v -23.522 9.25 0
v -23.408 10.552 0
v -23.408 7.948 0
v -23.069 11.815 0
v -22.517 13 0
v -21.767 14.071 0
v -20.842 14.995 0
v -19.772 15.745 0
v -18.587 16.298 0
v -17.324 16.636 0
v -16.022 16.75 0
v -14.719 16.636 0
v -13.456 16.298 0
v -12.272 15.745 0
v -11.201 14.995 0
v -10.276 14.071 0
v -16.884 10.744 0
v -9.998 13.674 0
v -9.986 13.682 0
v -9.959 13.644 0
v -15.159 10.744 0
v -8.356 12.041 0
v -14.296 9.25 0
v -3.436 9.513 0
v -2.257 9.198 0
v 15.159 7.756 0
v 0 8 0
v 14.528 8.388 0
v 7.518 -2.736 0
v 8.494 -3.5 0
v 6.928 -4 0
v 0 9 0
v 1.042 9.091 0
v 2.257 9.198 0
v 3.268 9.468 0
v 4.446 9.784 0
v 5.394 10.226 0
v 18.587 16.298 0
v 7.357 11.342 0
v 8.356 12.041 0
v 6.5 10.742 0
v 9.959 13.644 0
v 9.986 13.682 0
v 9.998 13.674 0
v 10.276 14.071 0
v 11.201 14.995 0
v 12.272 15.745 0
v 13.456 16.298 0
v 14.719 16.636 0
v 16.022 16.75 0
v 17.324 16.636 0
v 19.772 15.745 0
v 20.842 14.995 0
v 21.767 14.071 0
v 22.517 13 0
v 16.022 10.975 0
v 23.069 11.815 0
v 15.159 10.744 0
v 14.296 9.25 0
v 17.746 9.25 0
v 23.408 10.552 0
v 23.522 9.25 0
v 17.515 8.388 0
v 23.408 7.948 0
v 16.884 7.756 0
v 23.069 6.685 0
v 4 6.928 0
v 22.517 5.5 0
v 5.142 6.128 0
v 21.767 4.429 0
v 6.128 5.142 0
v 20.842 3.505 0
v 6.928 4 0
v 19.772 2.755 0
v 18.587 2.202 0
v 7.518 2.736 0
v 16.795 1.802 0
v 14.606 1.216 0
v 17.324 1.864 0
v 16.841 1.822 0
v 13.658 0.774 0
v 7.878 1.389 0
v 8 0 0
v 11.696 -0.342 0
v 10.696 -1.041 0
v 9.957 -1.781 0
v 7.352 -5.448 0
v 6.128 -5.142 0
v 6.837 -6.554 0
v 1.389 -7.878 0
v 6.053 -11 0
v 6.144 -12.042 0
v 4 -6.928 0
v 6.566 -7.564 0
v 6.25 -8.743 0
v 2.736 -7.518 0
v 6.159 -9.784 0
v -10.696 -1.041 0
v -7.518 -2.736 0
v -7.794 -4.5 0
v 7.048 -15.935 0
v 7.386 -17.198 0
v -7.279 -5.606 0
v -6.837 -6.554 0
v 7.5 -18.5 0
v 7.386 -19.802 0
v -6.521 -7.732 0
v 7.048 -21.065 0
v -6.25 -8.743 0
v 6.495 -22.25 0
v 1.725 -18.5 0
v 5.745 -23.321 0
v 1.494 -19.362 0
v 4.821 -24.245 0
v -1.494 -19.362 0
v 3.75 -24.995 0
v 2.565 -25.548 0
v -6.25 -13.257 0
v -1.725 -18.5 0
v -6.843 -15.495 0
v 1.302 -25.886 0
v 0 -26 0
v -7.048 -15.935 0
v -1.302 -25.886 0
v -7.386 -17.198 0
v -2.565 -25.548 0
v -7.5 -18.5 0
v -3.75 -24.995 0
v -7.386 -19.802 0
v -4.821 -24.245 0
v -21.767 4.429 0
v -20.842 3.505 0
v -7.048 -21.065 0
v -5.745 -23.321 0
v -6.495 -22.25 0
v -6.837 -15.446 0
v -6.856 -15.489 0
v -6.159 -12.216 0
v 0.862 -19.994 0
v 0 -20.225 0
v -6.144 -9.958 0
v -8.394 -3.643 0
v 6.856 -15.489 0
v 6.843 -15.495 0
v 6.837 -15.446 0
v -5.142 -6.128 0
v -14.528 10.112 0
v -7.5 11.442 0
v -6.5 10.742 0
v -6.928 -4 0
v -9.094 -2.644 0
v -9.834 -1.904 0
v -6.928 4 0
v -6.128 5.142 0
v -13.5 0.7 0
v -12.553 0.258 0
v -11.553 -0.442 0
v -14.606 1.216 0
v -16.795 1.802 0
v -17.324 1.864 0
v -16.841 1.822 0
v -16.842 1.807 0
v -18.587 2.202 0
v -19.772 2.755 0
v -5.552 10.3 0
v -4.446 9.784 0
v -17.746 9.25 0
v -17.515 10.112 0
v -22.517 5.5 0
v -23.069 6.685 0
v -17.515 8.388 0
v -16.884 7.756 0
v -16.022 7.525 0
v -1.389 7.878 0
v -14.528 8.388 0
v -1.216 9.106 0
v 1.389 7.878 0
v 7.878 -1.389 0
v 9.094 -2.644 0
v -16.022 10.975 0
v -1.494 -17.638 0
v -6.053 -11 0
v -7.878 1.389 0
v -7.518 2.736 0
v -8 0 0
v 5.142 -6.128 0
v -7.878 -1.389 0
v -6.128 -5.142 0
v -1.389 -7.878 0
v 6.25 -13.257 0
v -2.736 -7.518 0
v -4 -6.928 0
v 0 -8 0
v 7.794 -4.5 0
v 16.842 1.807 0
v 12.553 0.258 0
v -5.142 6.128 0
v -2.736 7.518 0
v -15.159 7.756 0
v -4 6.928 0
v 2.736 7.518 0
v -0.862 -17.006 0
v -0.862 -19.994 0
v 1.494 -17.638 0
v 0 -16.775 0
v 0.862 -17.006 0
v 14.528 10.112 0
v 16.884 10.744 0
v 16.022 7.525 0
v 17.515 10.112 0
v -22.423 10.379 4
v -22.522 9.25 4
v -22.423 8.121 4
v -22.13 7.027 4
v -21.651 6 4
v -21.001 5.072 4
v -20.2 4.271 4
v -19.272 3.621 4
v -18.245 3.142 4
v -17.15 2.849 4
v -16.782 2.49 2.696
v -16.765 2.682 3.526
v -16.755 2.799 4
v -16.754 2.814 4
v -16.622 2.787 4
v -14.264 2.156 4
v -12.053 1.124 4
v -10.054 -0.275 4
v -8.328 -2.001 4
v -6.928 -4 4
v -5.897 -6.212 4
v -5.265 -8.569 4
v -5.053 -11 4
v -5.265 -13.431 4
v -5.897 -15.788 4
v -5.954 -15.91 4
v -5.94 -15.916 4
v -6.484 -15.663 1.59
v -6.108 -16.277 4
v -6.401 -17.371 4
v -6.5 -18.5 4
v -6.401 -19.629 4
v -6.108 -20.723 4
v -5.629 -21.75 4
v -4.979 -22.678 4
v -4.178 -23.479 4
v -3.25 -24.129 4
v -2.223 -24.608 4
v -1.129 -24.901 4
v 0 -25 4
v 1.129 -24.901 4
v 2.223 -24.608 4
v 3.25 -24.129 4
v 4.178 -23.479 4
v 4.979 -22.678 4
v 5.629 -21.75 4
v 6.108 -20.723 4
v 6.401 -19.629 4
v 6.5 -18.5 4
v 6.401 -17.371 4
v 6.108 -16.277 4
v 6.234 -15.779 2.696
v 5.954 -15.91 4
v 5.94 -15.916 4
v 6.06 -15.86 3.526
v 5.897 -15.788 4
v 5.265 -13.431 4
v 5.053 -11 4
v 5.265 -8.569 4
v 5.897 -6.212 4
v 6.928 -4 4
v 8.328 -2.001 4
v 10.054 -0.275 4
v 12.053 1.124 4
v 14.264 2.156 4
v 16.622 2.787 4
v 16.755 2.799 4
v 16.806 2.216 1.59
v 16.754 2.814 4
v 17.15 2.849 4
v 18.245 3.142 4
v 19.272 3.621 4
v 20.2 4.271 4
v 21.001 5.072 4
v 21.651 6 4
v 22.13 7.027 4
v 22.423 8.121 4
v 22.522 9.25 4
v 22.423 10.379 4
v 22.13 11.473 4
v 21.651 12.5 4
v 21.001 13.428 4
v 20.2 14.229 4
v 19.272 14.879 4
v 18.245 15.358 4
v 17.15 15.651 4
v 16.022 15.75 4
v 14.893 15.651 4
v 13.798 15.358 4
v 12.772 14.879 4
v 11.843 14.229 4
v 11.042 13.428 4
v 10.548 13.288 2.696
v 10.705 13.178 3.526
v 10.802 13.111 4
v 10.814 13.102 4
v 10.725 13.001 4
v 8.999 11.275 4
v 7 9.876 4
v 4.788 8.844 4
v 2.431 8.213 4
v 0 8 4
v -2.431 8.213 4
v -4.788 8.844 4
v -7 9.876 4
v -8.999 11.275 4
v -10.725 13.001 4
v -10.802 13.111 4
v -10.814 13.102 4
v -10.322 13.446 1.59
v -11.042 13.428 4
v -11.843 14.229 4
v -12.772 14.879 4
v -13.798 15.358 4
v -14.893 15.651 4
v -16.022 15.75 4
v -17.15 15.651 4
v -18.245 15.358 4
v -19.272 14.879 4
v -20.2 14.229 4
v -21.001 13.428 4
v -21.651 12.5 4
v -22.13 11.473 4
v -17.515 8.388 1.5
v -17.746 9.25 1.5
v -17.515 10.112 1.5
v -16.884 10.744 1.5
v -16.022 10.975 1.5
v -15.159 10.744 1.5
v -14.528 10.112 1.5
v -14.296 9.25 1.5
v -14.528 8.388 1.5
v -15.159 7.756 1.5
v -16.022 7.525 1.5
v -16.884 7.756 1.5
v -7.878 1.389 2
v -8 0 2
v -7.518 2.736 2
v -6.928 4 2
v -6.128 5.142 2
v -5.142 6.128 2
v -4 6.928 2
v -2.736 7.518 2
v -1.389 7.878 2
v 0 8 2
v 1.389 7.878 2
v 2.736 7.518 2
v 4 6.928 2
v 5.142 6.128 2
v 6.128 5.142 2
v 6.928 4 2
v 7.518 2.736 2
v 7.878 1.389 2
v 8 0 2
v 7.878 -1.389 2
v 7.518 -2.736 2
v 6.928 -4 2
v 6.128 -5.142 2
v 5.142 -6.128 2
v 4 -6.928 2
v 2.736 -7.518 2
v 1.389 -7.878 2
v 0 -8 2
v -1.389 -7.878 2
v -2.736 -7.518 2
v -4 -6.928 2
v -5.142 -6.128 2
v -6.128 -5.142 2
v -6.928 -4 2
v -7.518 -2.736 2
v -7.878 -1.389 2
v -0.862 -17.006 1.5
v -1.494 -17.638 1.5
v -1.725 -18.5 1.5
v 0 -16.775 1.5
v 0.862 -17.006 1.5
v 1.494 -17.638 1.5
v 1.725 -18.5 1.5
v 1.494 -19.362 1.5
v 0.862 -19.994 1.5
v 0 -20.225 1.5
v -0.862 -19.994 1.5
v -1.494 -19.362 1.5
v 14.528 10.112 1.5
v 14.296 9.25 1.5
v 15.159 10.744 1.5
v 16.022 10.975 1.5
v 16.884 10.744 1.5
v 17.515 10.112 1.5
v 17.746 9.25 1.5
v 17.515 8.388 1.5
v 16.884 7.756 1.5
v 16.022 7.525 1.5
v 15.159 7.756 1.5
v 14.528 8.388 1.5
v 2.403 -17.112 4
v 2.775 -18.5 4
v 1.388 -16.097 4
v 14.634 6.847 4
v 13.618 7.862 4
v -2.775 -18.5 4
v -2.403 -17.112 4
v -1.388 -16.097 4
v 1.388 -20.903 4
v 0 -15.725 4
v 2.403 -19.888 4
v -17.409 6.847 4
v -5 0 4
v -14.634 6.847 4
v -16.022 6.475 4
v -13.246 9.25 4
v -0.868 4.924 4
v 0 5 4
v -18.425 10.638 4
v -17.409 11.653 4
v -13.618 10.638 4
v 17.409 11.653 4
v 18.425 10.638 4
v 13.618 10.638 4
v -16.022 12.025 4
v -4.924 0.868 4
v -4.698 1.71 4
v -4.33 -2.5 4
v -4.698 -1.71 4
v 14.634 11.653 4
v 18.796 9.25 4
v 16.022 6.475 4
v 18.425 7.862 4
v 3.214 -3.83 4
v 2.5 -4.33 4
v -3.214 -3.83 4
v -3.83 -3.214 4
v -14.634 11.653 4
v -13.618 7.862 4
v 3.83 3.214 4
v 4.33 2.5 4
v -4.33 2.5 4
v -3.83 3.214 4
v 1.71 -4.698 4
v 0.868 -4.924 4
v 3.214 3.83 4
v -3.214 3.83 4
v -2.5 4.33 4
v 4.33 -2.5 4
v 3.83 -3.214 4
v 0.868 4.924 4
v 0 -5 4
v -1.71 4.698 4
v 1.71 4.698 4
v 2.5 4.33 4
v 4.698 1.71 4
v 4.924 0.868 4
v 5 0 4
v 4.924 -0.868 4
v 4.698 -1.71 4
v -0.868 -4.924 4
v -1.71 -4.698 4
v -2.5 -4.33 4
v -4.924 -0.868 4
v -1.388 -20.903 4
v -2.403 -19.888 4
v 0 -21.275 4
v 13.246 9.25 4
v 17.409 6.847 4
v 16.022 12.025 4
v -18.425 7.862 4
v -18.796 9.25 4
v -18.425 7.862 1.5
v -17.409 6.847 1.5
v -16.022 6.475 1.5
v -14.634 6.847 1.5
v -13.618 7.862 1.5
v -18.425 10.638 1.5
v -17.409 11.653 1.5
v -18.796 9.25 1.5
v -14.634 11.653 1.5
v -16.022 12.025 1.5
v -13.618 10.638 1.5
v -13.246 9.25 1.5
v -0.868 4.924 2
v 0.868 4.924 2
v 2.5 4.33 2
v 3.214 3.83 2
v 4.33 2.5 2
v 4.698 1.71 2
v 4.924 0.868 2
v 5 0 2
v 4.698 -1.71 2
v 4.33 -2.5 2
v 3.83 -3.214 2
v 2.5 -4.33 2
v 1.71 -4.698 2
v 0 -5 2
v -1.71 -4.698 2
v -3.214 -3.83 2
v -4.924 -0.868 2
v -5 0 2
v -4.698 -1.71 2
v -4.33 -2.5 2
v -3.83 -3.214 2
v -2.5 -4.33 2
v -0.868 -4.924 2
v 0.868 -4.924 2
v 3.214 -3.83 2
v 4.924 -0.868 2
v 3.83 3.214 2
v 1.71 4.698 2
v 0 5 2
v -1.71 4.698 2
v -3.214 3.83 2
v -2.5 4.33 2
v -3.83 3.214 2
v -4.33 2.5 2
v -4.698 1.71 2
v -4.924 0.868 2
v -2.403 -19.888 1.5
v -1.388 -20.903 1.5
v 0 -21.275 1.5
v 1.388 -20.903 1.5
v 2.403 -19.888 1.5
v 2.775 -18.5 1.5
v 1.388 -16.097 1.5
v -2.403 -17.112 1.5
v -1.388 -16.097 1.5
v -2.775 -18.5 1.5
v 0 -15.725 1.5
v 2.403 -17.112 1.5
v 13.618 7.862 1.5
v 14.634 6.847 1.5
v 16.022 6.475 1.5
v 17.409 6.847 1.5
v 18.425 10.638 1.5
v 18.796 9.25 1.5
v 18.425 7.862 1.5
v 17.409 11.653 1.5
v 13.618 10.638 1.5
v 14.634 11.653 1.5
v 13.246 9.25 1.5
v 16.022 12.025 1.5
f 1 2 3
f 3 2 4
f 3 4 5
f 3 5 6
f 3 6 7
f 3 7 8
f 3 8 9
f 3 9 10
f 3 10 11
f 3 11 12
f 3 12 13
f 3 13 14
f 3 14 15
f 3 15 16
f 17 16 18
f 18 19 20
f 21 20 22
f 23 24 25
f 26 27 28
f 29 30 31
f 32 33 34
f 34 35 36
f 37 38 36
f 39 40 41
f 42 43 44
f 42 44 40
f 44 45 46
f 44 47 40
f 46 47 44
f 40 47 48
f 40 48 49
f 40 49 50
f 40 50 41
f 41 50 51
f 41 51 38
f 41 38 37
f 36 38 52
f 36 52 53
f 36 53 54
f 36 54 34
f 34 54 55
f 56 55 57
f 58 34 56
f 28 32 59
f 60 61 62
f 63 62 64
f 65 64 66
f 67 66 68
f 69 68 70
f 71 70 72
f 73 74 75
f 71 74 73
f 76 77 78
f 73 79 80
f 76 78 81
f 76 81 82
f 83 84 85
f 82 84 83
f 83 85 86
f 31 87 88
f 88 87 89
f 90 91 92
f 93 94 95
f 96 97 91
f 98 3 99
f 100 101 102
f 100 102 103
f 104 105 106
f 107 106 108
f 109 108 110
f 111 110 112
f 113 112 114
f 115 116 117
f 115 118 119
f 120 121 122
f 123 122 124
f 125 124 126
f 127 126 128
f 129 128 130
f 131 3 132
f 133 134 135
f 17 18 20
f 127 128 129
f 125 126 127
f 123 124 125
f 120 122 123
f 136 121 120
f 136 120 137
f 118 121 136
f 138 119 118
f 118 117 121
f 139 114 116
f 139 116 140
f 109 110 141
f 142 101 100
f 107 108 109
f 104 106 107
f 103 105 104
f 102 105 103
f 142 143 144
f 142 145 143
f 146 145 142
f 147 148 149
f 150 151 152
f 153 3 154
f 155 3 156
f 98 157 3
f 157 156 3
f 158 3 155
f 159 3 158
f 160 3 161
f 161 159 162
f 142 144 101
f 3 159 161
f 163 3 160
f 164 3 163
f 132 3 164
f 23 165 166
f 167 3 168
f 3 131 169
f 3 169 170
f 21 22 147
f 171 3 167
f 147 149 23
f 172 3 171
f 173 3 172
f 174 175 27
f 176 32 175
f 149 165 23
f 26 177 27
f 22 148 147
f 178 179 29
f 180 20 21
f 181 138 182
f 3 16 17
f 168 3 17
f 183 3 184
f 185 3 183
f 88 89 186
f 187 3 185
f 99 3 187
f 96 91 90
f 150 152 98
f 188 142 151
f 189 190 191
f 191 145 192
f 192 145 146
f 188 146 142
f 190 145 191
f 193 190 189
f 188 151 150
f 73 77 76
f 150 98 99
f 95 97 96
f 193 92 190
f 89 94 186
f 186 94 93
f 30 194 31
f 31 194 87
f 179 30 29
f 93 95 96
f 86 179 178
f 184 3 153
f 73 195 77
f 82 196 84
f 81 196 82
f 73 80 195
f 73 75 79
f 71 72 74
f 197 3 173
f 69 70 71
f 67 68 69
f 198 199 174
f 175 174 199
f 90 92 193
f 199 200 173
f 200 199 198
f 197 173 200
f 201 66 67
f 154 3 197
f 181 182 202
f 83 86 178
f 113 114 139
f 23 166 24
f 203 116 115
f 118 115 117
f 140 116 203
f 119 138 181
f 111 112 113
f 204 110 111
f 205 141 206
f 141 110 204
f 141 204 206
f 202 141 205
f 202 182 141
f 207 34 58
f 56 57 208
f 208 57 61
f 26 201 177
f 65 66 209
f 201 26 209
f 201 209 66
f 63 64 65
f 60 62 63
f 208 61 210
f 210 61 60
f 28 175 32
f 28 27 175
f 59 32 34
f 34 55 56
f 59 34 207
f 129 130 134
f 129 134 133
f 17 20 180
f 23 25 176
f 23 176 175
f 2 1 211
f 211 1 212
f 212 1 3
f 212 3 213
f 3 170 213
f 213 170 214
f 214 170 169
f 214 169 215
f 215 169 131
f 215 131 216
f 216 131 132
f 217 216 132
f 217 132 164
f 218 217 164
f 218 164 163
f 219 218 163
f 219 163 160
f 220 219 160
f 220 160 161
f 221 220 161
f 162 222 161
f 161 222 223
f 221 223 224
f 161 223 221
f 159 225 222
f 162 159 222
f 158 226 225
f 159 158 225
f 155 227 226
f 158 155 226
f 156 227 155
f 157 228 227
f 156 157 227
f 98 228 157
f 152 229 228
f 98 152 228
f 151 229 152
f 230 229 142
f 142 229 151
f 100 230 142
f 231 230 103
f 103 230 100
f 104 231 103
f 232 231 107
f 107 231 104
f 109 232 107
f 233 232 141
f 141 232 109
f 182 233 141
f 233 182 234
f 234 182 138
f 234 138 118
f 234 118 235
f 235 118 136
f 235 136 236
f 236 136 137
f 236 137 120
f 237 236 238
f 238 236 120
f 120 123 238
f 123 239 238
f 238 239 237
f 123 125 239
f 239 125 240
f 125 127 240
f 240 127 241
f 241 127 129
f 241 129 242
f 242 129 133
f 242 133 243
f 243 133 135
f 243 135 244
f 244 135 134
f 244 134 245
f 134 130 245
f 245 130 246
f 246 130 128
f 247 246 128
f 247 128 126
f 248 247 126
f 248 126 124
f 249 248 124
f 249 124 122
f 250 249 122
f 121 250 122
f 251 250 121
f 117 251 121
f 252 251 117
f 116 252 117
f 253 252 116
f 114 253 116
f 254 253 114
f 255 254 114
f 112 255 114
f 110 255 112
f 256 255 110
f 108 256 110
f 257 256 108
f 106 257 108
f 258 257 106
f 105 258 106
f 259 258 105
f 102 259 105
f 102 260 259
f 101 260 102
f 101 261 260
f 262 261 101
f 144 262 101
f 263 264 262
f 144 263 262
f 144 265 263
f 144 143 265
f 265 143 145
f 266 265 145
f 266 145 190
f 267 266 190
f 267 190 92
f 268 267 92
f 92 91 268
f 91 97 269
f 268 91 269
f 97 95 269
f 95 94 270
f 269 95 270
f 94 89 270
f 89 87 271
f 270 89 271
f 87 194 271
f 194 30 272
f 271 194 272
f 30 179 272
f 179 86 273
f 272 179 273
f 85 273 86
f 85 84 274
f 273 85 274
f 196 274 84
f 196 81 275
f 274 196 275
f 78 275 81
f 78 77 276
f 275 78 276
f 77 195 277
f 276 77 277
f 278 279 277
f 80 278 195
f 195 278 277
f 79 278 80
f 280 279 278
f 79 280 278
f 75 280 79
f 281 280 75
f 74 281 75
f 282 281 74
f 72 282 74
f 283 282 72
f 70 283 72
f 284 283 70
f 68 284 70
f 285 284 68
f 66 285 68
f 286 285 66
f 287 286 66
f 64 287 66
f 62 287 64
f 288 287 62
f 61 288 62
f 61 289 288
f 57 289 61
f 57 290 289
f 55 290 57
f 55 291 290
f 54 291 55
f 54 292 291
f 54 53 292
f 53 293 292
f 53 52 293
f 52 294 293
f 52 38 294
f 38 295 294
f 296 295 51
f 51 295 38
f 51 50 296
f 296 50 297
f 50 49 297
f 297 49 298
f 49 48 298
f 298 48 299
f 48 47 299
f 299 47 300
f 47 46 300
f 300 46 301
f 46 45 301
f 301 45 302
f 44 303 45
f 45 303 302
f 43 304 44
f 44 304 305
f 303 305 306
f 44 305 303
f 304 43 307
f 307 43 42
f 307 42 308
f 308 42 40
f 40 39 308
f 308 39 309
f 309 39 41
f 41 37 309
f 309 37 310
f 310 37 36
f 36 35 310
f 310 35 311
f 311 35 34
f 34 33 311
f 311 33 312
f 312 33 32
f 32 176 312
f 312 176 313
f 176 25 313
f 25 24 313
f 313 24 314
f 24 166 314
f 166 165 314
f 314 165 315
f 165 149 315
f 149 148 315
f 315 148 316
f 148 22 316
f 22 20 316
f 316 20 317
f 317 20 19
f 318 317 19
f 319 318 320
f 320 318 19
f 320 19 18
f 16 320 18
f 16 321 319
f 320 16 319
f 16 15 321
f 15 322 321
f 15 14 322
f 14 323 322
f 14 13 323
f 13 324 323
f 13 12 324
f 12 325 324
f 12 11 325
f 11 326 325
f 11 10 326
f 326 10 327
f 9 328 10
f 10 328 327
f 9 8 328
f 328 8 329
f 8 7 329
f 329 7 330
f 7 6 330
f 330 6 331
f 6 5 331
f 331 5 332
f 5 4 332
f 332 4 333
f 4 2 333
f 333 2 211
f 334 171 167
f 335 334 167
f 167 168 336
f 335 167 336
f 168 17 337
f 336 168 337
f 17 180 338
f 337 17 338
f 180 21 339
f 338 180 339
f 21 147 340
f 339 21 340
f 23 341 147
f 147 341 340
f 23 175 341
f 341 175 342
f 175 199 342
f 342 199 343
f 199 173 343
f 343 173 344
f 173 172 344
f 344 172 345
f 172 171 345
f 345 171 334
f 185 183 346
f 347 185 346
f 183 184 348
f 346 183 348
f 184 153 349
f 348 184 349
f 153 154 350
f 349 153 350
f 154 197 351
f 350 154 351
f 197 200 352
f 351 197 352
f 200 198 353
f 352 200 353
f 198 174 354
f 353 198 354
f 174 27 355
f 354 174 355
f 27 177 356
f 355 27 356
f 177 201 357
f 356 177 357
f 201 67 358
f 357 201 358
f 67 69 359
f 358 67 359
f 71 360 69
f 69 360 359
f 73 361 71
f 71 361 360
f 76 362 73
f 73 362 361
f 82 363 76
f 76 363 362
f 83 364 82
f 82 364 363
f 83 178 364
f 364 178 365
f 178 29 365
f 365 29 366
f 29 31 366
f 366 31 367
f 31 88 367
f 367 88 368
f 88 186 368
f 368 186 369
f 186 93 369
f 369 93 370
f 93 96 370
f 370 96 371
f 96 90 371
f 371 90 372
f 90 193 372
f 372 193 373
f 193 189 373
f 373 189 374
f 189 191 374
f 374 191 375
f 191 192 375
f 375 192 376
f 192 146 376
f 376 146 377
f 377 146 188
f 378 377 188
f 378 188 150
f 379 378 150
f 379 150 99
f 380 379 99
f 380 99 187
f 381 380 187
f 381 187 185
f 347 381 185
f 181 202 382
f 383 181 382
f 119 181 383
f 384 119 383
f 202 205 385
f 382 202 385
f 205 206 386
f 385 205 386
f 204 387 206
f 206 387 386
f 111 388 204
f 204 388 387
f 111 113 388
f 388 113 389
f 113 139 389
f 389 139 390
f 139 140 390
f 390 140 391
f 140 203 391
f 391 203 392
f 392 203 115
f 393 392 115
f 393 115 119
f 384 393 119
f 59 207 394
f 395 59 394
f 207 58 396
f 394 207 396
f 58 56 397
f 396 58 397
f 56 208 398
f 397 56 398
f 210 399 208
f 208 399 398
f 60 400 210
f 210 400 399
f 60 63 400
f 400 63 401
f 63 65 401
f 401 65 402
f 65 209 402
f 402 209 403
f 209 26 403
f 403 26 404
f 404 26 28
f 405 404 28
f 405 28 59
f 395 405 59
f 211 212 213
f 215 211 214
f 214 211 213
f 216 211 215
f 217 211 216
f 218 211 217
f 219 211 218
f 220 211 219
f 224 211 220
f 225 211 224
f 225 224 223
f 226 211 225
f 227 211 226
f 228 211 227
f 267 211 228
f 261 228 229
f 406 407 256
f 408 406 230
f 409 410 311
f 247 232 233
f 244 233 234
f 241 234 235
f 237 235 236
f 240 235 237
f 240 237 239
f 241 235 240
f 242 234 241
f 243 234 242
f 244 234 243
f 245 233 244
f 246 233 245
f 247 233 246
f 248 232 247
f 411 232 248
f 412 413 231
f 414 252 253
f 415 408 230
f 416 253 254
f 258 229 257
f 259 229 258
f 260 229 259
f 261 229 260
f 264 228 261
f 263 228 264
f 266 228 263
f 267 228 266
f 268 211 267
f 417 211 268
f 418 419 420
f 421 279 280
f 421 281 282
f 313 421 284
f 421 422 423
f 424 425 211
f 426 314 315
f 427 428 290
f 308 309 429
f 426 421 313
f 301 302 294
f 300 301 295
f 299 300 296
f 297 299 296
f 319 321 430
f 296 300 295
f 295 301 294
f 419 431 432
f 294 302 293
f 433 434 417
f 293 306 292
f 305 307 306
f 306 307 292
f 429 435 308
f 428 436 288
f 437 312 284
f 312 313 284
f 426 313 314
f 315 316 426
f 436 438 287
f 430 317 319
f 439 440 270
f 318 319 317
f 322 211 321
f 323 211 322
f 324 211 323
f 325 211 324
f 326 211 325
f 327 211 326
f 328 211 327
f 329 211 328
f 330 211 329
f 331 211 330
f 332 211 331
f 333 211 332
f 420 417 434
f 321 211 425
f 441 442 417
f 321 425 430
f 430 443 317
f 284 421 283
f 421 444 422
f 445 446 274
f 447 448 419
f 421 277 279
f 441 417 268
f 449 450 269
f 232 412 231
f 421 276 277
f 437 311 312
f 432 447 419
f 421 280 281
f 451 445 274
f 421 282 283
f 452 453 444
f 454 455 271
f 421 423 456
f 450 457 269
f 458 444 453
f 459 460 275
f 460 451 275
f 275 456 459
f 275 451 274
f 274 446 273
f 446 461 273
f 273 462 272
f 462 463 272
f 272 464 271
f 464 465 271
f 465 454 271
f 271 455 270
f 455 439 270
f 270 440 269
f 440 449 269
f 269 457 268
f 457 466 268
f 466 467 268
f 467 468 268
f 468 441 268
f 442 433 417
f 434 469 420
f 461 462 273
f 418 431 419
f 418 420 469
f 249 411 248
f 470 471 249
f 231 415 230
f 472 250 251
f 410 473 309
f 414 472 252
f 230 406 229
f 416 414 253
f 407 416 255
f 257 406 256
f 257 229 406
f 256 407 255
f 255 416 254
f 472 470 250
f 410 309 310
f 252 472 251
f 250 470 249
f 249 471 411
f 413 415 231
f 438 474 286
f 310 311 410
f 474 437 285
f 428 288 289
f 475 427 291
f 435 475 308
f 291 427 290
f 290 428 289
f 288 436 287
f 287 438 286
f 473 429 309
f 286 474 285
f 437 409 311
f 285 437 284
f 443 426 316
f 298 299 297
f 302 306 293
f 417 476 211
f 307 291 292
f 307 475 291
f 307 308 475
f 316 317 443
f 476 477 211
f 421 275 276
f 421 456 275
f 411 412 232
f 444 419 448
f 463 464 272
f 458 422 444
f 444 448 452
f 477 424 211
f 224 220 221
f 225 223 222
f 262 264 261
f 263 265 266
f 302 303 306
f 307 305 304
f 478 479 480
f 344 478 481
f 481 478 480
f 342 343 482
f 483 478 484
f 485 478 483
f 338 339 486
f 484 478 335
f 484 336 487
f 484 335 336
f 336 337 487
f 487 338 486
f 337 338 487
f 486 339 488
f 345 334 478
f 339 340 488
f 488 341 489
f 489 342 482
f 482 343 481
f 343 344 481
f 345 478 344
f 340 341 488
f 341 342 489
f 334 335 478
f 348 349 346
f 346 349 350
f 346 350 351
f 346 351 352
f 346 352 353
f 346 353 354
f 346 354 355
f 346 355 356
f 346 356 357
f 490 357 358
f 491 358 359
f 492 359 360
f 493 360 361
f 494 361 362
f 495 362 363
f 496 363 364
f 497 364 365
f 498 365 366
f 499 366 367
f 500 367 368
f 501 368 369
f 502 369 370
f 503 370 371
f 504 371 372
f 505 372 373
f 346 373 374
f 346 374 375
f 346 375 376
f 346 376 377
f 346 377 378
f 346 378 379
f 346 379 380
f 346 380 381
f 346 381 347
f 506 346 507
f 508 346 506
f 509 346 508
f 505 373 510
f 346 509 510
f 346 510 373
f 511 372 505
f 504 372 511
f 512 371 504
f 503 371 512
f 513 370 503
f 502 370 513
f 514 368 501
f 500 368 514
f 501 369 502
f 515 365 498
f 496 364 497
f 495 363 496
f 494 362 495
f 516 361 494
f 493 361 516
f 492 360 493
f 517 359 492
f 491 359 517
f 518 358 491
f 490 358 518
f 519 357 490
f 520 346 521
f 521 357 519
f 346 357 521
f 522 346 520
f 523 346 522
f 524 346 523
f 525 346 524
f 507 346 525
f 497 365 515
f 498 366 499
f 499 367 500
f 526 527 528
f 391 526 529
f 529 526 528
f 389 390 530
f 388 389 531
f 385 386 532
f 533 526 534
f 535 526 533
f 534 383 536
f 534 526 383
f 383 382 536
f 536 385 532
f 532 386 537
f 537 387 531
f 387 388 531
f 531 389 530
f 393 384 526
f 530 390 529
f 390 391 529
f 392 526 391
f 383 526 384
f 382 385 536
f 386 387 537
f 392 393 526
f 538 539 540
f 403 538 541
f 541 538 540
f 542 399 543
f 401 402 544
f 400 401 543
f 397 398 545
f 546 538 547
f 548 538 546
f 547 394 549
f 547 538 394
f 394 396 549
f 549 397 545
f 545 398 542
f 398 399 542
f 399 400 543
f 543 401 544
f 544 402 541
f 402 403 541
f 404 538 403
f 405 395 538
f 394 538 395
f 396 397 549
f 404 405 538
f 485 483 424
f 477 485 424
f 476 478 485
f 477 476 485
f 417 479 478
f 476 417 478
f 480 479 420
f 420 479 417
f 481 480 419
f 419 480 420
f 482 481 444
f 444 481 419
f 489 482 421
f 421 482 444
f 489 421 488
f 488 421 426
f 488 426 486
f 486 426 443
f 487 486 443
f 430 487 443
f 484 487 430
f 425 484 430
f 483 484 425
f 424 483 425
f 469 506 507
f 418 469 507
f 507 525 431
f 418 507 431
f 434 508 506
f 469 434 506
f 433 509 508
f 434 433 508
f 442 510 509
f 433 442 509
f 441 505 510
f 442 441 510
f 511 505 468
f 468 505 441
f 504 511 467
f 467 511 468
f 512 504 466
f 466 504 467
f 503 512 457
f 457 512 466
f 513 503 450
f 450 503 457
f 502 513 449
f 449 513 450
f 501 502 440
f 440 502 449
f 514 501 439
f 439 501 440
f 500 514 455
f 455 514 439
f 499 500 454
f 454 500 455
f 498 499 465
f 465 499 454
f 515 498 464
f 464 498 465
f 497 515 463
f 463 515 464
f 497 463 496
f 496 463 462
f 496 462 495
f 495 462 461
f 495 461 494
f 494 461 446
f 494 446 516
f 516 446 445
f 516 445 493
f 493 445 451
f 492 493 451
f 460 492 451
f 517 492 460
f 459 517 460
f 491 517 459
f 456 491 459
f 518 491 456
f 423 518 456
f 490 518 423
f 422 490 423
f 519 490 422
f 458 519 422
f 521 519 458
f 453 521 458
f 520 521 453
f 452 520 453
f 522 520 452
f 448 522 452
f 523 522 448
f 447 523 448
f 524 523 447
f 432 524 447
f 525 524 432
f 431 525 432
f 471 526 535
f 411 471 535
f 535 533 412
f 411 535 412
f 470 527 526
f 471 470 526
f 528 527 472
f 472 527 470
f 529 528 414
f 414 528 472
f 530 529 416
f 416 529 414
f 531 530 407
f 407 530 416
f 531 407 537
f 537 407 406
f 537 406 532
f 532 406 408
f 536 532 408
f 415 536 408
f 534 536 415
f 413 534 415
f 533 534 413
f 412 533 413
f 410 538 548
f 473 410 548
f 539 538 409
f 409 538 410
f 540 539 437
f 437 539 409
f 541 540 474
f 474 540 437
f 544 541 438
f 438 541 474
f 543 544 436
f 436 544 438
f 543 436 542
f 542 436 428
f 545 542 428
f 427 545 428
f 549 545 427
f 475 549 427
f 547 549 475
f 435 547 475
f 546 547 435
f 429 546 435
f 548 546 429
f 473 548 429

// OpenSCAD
// file: configuration.scad
// Increase this if your slicer or printer make holes too tight.
extra_radius = 0.1;

// OD = outside diameter, corner to corner.
m3_nut_od = 6.1;
m3_nut_radius = m3_nut_od/2 + 0.2 + extra_radius;

// Major diameter of metric 3mm thread.
m3_major = 2.85;
m3_radius = m3_major/2 + extra_radius;
m3_wide_radius = m3_major/2 + extra_radius + 0.2;

// OD = outside diameter, corner to corner.
m5_nut_od = 8.1;
m5_nut_radius = m5_nut_od/2 + 0.2 + extra_radius;

// Major diameter of metric 5mm thread.
m5_major = 4.85;
m5_radius = m5_major/2 + extra_radius;
m5_wide_radius = m5_major/2 + extra_radius + 0.2;

// NEMA17 stepper motors.
motor_shaft_diameter = 5;
motor_shaft_radius = motor_shaft_diameter/2 + extra_radius;

// Frame brackets. M3x8mm screws work best with 3.6 mm brackets.
thickness = 3.6;

// OpenBeam or Misumi. Currently only 15x15 mm, but there is a plan
// to make models more parametric and allow 20x20 mm in the future.
extrusion = 15;
// main file
include <configuration.scad>;

separation = 44;  // Distance between ball joint mounting faces.
offset = 22;  // Same as DELTA_EFFECTOR_OFFSET in Marlin.
mount_radius = 18.5;  // Hotend mounting screws, standard would be 25mm.
jhead_od_radius = 8;  // Hole for the hotend (J-Head diameter is 16mm).
jhead_id_radius = 5;
height = 4;
jhead_height=2;
m3_cap_radius=2.775;
m3_cap_height=3;


module mount_cap() {

rotate(a=[180,0,0]) {
  difference() {
	union() {
		cylinder(r=offset-5, h=height, center=true, $fn=36);
		
		for (a = [0:120:359]) rotate([0, 0, a]) {
      	translate([0, mount_radius, 0])	cylinder(r1=6.5,r2=7.5, h=height, center=true, $fn=36);
    		}

	}
		
    translate([0, 0, -height/2])cylinder(r=jhead_id_radius, h=height, $fn=36);
    translate([0, 0, -height/2+jhead_height])cylinder(r=jhead_od_radius, h=jhead_height, $fn=36);

    for (a = [0:120:359]) rotate([0, 0, a]) {
      translate([0, mount_radius, -1])	cylinder(r=m3_cap_radius, h=m3_cap_height, center=true, $fn=12);
    }


    for (a = [0:120:359]) rotate([0, 0, a]) {
      translate([0, mount_radius, height/2])	cylinder(r=m3_wide_radius, h=2*height, center=true, $fn=12);
    }
	
    for (a = [60:120:359]) rotate([0, 0, a]) {
      translate([0, offset, height/2])	cylinder(r1=14,r2=12, h=2*height, center=true, $fn=36);
    }

  }}
}

translate([0, 0, height/2]) mount_cap();
